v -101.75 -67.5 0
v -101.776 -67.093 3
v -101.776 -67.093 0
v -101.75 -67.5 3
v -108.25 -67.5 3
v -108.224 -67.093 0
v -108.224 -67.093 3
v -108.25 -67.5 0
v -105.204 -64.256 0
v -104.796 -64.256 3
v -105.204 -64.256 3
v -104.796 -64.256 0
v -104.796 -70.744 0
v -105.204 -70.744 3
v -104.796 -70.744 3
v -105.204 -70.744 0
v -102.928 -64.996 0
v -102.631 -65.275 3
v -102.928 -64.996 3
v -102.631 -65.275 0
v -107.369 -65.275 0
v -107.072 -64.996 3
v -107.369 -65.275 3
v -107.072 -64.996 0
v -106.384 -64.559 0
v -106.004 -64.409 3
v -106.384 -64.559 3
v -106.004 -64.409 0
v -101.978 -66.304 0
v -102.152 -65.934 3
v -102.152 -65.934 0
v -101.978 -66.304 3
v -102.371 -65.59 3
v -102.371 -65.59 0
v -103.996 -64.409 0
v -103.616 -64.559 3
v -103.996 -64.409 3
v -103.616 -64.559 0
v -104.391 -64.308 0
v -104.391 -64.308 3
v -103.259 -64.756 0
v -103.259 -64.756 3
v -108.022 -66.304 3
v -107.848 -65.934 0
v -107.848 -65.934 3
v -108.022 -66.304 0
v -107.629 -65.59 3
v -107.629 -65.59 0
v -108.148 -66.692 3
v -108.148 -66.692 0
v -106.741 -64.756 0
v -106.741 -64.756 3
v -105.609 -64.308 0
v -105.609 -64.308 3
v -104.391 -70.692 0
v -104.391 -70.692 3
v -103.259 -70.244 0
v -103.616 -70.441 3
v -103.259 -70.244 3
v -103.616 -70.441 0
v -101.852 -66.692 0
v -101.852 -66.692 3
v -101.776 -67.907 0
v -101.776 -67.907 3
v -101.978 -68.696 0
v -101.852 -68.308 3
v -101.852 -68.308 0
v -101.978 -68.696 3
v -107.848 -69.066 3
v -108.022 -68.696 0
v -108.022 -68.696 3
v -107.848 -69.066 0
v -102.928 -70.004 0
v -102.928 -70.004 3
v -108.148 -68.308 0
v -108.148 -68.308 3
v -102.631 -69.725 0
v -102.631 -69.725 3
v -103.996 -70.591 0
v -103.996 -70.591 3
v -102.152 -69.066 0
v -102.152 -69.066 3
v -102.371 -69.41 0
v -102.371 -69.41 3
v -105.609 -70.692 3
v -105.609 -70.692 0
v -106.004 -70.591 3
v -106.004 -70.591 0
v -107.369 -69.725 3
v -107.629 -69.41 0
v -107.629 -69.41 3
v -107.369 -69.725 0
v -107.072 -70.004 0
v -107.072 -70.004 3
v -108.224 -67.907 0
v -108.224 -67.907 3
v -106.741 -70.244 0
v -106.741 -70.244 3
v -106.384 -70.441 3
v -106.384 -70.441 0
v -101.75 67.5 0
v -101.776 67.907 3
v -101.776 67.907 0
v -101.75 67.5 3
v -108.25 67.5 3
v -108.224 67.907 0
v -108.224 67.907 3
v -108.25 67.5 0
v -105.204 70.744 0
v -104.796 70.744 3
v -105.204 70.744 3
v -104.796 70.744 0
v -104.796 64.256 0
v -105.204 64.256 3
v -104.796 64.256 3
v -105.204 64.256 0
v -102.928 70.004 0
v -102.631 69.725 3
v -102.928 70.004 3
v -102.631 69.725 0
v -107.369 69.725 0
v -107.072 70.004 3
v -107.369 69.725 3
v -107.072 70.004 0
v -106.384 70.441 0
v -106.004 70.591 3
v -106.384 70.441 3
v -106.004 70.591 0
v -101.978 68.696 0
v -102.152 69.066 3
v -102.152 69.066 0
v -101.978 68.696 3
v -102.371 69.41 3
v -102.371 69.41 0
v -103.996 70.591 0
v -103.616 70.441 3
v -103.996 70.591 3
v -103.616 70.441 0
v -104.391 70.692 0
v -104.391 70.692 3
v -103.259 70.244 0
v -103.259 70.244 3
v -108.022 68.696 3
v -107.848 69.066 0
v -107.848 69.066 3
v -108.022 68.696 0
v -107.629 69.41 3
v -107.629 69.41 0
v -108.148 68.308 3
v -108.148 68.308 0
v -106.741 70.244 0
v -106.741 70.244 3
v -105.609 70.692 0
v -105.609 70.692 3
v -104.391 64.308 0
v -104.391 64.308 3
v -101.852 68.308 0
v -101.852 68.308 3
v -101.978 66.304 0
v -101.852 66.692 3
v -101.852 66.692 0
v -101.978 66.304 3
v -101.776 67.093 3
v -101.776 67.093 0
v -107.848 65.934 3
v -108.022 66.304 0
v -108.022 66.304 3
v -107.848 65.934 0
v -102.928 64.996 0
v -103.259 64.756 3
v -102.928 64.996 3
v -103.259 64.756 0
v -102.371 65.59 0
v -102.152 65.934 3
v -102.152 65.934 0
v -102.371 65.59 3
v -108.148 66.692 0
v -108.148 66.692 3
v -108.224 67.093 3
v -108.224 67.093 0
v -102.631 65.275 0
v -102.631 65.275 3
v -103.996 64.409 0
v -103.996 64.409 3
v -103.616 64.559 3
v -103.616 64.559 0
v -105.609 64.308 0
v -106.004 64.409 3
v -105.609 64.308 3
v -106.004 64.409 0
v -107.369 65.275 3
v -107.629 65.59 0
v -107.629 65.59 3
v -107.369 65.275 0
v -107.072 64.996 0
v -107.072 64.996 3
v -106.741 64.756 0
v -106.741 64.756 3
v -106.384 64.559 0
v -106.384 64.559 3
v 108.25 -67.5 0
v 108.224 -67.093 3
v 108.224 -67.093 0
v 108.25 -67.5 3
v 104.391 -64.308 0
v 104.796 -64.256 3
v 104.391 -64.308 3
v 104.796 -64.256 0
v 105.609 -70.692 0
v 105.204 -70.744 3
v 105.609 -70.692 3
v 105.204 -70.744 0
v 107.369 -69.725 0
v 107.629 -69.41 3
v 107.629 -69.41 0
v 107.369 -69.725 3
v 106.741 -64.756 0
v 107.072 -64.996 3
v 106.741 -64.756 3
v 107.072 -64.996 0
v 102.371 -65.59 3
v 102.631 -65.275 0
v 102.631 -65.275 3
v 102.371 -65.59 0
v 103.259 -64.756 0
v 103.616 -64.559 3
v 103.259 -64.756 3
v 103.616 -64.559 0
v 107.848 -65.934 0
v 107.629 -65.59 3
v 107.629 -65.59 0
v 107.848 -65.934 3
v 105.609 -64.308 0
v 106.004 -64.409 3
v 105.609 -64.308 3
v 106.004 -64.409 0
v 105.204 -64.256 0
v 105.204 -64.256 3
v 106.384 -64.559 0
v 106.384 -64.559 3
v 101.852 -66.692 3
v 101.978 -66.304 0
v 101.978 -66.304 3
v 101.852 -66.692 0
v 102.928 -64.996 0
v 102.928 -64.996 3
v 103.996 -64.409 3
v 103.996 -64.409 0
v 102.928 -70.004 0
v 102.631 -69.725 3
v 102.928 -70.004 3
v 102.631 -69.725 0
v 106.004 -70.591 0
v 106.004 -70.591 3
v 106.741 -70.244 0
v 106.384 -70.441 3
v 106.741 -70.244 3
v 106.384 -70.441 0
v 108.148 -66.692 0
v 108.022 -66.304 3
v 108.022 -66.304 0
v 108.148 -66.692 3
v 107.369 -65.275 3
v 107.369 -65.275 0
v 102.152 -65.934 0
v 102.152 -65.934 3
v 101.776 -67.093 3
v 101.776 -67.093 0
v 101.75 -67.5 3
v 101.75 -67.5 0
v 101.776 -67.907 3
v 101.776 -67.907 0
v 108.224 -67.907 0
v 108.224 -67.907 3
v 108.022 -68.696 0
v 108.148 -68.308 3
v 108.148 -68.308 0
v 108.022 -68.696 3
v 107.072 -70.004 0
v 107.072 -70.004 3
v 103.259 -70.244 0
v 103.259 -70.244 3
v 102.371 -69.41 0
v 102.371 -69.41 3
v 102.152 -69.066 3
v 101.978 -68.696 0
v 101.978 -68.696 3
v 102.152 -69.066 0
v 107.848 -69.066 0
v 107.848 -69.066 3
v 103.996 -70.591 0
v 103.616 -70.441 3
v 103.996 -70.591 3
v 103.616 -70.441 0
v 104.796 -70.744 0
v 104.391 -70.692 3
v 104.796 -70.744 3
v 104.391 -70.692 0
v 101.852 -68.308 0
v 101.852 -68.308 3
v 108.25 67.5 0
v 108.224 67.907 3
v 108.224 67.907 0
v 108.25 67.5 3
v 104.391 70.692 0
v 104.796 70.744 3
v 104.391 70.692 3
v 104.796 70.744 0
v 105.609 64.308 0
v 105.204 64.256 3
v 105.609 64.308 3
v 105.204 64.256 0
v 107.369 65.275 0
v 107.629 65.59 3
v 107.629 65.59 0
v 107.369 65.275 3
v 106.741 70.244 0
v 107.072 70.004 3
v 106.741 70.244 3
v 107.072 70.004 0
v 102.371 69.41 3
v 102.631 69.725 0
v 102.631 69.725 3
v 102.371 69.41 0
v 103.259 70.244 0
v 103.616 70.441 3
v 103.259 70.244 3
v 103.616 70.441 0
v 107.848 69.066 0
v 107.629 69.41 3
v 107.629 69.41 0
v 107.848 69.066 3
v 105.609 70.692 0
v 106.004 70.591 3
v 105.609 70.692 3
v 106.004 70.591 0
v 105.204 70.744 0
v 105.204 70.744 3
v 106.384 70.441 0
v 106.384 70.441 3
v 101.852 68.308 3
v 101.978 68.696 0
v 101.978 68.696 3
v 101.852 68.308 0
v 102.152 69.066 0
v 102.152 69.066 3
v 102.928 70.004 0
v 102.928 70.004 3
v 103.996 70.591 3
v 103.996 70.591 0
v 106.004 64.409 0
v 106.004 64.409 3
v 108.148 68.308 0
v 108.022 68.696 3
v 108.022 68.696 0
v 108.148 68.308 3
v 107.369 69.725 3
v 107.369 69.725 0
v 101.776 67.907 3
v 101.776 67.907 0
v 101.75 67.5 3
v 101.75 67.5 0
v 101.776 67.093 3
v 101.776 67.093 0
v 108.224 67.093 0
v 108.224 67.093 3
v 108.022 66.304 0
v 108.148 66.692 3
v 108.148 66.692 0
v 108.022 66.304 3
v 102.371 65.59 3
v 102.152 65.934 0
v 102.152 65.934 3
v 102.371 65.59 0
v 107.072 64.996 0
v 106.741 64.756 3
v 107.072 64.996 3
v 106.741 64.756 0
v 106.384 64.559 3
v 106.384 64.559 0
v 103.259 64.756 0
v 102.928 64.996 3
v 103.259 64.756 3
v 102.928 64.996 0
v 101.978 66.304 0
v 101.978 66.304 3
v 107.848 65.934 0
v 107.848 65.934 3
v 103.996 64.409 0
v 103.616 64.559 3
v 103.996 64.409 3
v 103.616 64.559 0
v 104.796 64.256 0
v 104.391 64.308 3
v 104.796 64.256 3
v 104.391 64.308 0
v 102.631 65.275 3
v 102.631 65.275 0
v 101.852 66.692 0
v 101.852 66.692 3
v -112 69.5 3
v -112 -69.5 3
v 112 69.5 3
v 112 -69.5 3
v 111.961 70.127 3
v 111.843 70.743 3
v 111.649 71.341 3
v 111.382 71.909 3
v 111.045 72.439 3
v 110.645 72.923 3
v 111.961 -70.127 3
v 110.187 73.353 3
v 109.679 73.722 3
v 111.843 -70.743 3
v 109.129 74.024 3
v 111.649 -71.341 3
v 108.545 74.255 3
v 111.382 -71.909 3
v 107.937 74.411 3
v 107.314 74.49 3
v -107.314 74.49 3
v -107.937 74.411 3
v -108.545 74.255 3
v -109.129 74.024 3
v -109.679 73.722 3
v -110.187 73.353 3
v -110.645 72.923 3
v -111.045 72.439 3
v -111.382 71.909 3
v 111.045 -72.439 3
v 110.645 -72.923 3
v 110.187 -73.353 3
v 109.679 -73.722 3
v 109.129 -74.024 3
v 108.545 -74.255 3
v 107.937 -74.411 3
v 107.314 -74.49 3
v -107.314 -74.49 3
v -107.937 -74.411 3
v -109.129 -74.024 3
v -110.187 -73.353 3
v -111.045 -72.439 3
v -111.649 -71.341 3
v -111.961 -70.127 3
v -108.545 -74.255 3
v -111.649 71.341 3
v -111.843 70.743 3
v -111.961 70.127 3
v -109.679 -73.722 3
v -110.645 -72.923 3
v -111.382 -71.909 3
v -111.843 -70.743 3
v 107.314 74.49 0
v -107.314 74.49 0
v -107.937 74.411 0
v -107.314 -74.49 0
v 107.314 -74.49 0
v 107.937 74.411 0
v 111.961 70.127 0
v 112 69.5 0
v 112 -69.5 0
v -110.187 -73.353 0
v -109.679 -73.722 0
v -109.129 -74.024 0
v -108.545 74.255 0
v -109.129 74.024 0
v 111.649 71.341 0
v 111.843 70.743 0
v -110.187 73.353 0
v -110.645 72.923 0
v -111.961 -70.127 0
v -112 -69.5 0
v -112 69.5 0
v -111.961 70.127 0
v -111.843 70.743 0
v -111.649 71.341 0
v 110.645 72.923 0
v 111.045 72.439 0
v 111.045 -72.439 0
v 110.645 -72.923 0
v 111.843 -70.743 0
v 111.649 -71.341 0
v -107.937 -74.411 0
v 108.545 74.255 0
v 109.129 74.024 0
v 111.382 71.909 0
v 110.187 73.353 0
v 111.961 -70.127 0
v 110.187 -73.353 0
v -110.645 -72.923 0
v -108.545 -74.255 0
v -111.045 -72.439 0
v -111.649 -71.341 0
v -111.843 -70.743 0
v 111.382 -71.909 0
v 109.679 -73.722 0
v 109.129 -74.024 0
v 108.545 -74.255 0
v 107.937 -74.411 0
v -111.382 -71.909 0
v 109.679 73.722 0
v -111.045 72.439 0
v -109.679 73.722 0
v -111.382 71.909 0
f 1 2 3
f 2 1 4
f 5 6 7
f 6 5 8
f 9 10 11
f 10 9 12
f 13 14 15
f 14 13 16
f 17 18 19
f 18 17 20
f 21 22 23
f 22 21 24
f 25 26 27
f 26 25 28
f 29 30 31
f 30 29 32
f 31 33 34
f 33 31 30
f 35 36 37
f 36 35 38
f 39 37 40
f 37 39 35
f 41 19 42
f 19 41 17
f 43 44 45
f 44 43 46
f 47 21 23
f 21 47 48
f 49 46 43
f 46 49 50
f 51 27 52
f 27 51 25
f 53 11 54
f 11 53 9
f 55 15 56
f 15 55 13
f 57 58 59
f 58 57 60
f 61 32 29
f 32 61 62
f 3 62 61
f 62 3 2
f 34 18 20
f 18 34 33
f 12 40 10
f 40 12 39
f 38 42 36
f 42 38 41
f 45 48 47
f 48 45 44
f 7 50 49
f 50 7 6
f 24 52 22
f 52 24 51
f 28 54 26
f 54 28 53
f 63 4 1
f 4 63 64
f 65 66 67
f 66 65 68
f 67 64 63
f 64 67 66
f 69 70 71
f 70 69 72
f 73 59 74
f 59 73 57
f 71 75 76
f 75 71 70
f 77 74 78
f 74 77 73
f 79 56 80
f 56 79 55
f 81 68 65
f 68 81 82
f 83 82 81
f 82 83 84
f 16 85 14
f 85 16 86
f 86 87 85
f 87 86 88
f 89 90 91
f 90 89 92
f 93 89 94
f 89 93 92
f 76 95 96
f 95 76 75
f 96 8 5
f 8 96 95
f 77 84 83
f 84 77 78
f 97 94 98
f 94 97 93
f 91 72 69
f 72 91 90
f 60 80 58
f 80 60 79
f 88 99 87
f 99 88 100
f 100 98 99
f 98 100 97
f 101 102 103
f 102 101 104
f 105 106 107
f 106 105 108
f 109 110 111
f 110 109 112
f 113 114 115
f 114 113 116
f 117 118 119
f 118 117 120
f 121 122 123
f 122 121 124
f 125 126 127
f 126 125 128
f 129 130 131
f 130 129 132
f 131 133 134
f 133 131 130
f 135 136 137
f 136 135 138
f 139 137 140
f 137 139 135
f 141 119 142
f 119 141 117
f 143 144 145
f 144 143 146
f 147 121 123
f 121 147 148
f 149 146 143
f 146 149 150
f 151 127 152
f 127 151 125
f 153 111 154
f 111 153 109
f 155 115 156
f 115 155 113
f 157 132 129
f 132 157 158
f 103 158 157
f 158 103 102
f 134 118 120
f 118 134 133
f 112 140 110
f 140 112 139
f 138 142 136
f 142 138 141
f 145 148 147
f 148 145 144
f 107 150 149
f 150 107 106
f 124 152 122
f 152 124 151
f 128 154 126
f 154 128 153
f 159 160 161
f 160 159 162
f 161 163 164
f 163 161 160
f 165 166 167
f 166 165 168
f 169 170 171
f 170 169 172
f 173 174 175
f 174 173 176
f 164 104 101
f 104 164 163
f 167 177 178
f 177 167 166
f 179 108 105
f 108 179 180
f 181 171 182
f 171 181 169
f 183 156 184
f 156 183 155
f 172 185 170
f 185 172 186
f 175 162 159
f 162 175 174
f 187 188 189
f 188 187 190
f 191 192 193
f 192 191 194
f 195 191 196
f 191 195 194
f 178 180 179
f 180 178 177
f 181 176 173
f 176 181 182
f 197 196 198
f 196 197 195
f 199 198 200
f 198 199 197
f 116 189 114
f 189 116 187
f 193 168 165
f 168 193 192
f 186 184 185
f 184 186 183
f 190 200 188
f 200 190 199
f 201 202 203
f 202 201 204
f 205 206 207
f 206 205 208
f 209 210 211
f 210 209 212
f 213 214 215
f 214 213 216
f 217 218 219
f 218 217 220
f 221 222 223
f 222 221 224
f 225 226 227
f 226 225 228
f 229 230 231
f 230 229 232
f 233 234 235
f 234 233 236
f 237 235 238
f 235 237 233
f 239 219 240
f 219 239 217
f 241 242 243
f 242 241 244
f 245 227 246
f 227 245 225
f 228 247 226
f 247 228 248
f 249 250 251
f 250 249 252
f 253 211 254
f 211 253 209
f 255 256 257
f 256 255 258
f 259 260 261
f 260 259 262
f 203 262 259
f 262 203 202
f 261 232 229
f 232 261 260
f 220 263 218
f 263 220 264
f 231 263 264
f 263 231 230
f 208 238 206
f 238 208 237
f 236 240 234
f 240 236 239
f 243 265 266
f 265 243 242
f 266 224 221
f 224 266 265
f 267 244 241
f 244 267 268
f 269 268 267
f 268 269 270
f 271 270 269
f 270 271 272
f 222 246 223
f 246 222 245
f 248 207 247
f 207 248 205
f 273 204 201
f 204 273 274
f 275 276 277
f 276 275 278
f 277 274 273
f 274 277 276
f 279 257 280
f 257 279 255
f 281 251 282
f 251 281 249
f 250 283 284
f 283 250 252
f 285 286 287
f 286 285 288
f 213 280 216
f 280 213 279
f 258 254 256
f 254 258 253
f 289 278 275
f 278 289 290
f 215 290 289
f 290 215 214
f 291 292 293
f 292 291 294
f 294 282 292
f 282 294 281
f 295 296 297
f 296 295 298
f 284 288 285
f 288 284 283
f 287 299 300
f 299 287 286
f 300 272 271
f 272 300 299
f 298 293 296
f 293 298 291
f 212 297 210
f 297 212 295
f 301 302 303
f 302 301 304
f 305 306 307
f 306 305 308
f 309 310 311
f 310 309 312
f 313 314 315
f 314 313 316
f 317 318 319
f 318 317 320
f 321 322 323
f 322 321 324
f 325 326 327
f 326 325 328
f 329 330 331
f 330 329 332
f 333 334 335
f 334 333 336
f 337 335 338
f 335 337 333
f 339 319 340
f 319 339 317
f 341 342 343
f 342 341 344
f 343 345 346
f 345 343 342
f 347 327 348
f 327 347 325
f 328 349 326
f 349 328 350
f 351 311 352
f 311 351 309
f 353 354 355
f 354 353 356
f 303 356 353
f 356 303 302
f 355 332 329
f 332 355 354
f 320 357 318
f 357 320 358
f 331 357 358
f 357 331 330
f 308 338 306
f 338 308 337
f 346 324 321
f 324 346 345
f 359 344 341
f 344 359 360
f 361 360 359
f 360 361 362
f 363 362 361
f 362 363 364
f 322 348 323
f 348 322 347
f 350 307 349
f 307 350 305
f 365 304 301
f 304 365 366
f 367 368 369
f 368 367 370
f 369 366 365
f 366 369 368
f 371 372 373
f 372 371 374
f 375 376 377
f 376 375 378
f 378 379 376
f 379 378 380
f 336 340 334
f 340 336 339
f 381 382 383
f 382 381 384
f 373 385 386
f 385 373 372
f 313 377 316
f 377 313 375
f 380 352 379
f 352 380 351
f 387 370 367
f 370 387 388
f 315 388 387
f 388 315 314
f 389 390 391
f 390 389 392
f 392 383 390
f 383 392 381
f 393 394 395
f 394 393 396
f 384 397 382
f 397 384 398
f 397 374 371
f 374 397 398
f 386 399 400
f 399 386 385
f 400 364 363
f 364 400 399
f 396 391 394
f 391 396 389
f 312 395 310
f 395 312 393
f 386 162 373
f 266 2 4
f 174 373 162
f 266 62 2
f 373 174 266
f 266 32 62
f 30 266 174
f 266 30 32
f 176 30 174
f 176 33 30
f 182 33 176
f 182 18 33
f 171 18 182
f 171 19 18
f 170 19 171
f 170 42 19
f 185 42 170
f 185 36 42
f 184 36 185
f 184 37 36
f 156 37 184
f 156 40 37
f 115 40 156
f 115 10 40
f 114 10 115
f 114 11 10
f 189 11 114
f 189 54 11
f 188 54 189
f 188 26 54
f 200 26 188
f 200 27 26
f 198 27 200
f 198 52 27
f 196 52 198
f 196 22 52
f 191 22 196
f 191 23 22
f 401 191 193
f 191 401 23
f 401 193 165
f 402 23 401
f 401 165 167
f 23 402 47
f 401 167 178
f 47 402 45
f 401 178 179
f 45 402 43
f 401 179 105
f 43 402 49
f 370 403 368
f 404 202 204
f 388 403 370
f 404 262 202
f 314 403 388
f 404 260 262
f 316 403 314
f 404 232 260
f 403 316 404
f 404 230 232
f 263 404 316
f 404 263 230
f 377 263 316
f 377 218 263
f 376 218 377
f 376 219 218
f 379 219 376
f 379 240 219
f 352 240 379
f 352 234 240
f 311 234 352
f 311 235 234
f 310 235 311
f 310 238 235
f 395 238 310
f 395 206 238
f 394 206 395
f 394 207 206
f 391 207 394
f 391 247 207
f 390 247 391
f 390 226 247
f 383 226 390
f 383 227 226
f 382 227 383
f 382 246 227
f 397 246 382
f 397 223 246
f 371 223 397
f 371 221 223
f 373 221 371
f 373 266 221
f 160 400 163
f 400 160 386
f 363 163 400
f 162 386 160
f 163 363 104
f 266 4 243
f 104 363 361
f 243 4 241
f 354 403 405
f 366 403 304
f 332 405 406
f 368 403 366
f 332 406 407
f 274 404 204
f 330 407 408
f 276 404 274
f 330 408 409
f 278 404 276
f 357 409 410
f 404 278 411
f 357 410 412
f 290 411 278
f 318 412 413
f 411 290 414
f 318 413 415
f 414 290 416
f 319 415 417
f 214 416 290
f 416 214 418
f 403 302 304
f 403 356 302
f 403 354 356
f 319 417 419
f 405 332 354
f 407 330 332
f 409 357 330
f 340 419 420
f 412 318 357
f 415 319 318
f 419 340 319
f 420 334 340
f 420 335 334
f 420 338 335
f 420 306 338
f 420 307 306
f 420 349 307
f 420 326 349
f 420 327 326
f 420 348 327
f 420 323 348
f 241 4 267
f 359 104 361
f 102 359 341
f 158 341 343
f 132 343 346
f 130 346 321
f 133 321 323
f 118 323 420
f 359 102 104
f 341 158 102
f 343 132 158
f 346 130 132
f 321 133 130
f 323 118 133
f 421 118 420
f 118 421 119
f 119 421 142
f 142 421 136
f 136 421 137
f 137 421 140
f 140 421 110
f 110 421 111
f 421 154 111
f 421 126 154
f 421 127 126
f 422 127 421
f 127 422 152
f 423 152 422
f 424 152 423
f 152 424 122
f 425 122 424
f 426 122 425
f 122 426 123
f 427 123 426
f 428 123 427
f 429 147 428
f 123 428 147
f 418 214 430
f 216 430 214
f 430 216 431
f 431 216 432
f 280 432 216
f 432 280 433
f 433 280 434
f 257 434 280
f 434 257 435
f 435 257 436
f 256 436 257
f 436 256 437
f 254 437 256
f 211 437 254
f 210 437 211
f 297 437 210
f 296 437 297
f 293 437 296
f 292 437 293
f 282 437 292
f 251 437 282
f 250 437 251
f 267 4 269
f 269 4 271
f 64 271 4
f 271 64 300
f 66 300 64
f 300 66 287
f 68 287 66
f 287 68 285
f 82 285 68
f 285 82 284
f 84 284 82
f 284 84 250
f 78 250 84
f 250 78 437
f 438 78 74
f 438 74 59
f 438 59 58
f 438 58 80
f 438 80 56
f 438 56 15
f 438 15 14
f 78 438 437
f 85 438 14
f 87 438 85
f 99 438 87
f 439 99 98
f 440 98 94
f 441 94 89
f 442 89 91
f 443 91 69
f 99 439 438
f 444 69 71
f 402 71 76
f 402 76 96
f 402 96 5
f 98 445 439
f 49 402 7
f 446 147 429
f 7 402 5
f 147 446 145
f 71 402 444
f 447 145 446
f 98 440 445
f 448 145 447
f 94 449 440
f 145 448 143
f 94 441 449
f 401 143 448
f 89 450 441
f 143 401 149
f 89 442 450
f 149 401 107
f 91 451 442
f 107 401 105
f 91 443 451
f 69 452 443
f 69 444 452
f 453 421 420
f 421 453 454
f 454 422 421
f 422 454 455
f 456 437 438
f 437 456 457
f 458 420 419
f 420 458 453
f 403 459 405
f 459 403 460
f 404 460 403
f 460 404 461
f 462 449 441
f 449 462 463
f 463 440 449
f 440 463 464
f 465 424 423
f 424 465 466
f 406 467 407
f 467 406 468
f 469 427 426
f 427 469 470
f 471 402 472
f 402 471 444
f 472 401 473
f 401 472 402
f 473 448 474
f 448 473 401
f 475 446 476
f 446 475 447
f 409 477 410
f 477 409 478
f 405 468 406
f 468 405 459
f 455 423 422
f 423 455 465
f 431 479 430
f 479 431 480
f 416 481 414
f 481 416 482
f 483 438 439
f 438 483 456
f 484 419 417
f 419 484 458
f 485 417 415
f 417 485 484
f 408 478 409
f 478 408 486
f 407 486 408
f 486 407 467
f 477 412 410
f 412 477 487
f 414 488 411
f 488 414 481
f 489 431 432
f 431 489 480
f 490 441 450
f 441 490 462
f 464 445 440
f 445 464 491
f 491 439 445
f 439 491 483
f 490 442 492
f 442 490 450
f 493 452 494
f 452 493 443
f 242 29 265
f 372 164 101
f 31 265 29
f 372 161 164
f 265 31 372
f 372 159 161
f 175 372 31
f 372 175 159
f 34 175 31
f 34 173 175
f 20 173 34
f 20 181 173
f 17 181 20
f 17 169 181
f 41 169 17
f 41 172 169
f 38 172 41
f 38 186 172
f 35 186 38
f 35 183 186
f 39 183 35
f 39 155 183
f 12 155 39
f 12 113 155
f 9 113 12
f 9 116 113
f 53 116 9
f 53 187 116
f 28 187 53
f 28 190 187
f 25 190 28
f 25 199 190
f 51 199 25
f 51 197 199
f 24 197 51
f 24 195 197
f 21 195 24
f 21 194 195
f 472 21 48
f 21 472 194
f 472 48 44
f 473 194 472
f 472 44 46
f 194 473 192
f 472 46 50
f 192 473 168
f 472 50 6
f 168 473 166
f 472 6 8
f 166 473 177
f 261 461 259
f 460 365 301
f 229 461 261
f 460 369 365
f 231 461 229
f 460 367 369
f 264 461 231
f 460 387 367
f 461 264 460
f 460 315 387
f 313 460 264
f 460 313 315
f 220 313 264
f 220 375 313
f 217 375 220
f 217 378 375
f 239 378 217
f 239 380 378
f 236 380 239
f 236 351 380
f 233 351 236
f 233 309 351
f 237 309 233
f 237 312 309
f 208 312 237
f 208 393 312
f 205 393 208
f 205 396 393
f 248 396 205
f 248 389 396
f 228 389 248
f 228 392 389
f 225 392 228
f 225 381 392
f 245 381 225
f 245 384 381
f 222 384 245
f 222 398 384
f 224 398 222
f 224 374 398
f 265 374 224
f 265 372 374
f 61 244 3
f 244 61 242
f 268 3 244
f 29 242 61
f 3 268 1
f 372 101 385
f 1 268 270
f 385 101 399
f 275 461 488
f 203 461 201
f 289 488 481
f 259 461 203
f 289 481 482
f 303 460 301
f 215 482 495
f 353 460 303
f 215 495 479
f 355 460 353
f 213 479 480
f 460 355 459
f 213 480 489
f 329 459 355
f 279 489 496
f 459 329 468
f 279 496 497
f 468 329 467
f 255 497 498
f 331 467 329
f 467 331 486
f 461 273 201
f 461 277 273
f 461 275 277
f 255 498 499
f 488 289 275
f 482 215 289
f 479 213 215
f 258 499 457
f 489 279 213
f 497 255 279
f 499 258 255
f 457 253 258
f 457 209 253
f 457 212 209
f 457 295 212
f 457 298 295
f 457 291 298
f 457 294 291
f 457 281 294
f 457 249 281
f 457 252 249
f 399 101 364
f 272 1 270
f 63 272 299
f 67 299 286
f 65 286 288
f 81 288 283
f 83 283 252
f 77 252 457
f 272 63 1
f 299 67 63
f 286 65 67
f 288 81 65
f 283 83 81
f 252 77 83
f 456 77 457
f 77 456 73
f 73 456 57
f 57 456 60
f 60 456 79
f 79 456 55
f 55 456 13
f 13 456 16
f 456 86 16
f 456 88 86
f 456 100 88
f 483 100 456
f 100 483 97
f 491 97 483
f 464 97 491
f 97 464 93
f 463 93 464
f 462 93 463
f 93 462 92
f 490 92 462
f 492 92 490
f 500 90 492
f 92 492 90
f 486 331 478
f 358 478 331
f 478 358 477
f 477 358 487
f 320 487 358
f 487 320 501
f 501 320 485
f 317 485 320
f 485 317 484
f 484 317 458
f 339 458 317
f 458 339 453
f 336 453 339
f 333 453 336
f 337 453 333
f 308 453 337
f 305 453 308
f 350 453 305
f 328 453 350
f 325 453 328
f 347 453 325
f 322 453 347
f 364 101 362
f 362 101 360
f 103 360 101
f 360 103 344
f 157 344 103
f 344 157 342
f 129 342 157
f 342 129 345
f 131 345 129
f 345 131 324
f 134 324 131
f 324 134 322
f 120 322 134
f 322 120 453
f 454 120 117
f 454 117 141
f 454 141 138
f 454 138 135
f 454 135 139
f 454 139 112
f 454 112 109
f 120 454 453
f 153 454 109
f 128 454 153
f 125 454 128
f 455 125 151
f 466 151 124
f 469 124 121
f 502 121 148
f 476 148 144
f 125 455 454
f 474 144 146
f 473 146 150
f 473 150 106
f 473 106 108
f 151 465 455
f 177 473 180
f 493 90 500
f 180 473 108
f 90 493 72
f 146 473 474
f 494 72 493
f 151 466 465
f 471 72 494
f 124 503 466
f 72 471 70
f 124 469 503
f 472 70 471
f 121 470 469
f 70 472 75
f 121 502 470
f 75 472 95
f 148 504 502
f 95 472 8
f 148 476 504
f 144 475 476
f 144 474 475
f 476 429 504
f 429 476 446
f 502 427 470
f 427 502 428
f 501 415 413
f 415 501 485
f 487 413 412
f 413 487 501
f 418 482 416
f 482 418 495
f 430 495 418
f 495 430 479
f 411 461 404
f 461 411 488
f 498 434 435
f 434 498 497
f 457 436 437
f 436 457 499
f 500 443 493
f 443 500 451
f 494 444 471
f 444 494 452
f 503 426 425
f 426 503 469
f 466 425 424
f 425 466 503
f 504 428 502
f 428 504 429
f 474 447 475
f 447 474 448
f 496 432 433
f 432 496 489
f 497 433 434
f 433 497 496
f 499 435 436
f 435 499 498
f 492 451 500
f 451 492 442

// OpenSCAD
$fn = 50;


difference() {
	union() {
		hull() {
			translate(v = [-107.0000000000, 69.5000000000, 0]) {
				cylinder(h = 3, r = 5);
			}
			translate(v = [107.0000000000, 69.5000000000, 0]) {
				cylinder(h = 3, r = 5);
			}
			translate(v = [-107.0000000000, -69.5000000000, 0]) {
				cylinder(h = 3, r = 5);
			}
			translate(v = [107.0000000000, -69.5000000000, 0]) {
				cylinder(h = 3, r = 5);
			}
		}
	}
	union() {
		translate(v = [-105.0000000000, -67.5000000000, -100.0000000000]) {
			cylinder(h = 200, r = 3.2500000000);
		}
		translate(v = [-105.0000000000, 67.5000000000, -100.0000000000]) {
			cylinder(h = 200, r = 3.2500000000);
		}
		translate(v = [105.0000000000, -67.5000000000, -100.0000000000]) {
			cylinder(h = 200, r = 3.2500000000);
		}
		translate(v = [105.0000000000, 67.5000000000, -100.0000000000]) {
			cylinder(h = 200, r = 3.2500000000);
		}
	}
}
